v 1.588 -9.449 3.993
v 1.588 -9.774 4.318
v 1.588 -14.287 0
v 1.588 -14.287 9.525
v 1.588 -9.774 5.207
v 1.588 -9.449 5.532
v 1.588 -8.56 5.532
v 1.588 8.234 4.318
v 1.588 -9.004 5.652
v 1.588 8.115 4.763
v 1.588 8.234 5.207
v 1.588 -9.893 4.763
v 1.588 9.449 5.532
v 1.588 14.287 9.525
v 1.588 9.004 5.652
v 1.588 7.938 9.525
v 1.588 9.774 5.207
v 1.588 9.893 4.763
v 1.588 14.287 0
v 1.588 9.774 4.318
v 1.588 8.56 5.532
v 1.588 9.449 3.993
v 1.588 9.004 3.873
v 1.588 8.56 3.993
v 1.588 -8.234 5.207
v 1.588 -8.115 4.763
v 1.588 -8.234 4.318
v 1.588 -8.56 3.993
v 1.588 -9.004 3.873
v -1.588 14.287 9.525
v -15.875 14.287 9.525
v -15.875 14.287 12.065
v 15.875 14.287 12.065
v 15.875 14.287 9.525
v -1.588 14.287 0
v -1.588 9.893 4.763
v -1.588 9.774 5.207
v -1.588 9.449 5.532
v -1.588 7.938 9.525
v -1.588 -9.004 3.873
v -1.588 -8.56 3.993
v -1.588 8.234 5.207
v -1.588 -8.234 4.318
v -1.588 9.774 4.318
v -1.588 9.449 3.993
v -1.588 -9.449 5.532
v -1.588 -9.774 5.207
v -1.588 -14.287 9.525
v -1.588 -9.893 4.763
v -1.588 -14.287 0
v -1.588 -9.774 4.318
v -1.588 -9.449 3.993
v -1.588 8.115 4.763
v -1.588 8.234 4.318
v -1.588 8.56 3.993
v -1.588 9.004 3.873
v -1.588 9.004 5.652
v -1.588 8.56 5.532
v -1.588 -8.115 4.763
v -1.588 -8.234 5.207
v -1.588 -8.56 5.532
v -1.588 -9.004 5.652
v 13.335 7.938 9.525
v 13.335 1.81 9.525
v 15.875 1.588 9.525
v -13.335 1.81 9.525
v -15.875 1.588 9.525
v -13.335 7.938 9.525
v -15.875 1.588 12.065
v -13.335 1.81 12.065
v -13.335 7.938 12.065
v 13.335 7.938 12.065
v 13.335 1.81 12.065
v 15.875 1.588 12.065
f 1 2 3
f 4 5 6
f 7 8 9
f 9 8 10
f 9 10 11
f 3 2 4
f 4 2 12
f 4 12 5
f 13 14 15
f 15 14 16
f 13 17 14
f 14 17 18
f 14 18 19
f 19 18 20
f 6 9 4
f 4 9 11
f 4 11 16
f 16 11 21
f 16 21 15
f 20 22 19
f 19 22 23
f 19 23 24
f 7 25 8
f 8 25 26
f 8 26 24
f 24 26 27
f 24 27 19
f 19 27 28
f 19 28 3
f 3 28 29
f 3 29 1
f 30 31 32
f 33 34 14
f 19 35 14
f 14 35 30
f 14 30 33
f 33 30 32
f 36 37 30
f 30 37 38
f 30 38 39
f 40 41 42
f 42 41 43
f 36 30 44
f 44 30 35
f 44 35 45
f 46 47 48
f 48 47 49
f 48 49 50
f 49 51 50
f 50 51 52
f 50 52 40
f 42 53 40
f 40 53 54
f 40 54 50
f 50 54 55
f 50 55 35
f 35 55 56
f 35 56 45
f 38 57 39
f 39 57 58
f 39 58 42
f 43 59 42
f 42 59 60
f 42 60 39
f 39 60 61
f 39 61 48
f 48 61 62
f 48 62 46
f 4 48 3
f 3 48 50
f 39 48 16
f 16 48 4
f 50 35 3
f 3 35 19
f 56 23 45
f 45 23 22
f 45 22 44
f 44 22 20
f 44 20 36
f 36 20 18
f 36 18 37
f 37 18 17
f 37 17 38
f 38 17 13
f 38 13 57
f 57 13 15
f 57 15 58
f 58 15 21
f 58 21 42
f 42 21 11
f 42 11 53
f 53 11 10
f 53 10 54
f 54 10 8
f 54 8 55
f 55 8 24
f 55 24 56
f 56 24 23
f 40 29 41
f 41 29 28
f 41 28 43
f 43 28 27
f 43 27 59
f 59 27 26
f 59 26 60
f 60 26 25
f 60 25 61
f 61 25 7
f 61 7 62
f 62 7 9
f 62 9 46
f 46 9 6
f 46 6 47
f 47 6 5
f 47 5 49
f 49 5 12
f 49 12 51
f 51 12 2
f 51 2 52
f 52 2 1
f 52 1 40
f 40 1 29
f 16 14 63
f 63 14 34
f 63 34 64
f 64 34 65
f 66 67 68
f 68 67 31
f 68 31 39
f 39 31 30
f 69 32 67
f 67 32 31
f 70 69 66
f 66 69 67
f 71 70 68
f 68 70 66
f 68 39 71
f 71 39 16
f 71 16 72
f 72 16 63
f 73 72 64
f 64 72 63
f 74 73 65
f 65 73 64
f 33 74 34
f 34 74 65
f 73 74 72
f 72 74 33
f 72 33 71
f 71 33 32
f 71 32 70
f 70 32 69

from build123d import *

# Parameters (mm, degrees)
SKETCH1_W           = 3.175
SKETCH1_H           = 28.575
BOSS_EXTRUDE1_DEPTH = 9.525
CUT_EXTRUDE1_REACH  = 19.462
SKETCH4_R           = 0.889
SKETCH5_W           = 3.175
SKETCH5_H           = 6.35
BOSS_EXTRUDE3_DEPTH = 2.54


with BuildPart() as part:
    # Sketch1 → Boss-Extrude1 (new body)
    with BuildSketch(Plane.XY):
        Rectangle(SKETCH1_W, SKETCH1_H)
    extrude(amount=BOSS_EXTRUDE1_DEPTH)

    # Sketch4 → Cut-Extrude1 (cut, up to next)
    with BuildSketch(Plane(origin=(1.5875, 0, 0), x_dir=(0, 0, -1), z_dir=(1, 0, 0)), mode=Mode.PRIVATE) as cut_extrude1_sk1:
        with Locations((-4.7625, -9.0043)):
            Circle(SKETCH4_R)
    cut_extrude1_tool1 = extrude(cut_extrude1_sk1.sketch, amount=-CUT_EXTRUDE1_REACH, mode=Mode.PRIVATE) & part.part
    # Sketch4 → Cut-Extrude1 (cut, up to next)
    with BuildSketch(Plane(origin=(1.5875, 0, 0), x_dir=(0, 0, -1), z_dir=(1, 0, 0)), mode=Mode.PRIVATE) as cut_extrude1_sk2:
        with Locations((-4.7625, 9.0043)):
            Circle(SKETCH4_R)
    cut_extrude1_tool2 = extrude(cut_extrude1_sk2.sketch, amount=-CUT_EXTRUDE1_REACH, mode=Mode.PRIVATE) & part.part
    add(cut_extrude1_tool1.solids().sort_by_distance((1.5875, -9.0043, 4.7625))[0], mode=Mode.SUBTRACT)
    add(cut_extrude1_tool2.solids().sort_by_distance((1.5875, 9.0043, 4.7625))[0], mode=Mode.SUBTRACT)

    # Sketch5 → Boss-Extrude3 (add)
    with BuildSketch(Plane.XY.offset(9.525)):
        Polygon((-1.5875, 7.9375), (-1.5875, 14.2875), (-15.875, 14.2875), (-15.875, 7.9375), (-13.335, 7.9375), align=None)
        with Locations((0, 11.1125)):
            Rectangle(SKETCH5_W, SKETCH5_H)
        Polygon((15.875, 7.9375), (15.875, 14.2875), (1.5875, 14.2875), (1.5875, 7.9375), (13.335, 7.9375), align=None)
        Polygon((15.875, 1.5875), (15.875, 7.9375), (13.335, 7.9375), (13.335, 1.809721205), align=None)
        Polygon((-13.335, 7.9375), (-15.875, 7.9375), (-15.875, 1.5875), (-13.335, 1.809721205), align=None)
    extrude(amount=BOSS_EXTRUDE3_DEPTH)


solid = part.part
